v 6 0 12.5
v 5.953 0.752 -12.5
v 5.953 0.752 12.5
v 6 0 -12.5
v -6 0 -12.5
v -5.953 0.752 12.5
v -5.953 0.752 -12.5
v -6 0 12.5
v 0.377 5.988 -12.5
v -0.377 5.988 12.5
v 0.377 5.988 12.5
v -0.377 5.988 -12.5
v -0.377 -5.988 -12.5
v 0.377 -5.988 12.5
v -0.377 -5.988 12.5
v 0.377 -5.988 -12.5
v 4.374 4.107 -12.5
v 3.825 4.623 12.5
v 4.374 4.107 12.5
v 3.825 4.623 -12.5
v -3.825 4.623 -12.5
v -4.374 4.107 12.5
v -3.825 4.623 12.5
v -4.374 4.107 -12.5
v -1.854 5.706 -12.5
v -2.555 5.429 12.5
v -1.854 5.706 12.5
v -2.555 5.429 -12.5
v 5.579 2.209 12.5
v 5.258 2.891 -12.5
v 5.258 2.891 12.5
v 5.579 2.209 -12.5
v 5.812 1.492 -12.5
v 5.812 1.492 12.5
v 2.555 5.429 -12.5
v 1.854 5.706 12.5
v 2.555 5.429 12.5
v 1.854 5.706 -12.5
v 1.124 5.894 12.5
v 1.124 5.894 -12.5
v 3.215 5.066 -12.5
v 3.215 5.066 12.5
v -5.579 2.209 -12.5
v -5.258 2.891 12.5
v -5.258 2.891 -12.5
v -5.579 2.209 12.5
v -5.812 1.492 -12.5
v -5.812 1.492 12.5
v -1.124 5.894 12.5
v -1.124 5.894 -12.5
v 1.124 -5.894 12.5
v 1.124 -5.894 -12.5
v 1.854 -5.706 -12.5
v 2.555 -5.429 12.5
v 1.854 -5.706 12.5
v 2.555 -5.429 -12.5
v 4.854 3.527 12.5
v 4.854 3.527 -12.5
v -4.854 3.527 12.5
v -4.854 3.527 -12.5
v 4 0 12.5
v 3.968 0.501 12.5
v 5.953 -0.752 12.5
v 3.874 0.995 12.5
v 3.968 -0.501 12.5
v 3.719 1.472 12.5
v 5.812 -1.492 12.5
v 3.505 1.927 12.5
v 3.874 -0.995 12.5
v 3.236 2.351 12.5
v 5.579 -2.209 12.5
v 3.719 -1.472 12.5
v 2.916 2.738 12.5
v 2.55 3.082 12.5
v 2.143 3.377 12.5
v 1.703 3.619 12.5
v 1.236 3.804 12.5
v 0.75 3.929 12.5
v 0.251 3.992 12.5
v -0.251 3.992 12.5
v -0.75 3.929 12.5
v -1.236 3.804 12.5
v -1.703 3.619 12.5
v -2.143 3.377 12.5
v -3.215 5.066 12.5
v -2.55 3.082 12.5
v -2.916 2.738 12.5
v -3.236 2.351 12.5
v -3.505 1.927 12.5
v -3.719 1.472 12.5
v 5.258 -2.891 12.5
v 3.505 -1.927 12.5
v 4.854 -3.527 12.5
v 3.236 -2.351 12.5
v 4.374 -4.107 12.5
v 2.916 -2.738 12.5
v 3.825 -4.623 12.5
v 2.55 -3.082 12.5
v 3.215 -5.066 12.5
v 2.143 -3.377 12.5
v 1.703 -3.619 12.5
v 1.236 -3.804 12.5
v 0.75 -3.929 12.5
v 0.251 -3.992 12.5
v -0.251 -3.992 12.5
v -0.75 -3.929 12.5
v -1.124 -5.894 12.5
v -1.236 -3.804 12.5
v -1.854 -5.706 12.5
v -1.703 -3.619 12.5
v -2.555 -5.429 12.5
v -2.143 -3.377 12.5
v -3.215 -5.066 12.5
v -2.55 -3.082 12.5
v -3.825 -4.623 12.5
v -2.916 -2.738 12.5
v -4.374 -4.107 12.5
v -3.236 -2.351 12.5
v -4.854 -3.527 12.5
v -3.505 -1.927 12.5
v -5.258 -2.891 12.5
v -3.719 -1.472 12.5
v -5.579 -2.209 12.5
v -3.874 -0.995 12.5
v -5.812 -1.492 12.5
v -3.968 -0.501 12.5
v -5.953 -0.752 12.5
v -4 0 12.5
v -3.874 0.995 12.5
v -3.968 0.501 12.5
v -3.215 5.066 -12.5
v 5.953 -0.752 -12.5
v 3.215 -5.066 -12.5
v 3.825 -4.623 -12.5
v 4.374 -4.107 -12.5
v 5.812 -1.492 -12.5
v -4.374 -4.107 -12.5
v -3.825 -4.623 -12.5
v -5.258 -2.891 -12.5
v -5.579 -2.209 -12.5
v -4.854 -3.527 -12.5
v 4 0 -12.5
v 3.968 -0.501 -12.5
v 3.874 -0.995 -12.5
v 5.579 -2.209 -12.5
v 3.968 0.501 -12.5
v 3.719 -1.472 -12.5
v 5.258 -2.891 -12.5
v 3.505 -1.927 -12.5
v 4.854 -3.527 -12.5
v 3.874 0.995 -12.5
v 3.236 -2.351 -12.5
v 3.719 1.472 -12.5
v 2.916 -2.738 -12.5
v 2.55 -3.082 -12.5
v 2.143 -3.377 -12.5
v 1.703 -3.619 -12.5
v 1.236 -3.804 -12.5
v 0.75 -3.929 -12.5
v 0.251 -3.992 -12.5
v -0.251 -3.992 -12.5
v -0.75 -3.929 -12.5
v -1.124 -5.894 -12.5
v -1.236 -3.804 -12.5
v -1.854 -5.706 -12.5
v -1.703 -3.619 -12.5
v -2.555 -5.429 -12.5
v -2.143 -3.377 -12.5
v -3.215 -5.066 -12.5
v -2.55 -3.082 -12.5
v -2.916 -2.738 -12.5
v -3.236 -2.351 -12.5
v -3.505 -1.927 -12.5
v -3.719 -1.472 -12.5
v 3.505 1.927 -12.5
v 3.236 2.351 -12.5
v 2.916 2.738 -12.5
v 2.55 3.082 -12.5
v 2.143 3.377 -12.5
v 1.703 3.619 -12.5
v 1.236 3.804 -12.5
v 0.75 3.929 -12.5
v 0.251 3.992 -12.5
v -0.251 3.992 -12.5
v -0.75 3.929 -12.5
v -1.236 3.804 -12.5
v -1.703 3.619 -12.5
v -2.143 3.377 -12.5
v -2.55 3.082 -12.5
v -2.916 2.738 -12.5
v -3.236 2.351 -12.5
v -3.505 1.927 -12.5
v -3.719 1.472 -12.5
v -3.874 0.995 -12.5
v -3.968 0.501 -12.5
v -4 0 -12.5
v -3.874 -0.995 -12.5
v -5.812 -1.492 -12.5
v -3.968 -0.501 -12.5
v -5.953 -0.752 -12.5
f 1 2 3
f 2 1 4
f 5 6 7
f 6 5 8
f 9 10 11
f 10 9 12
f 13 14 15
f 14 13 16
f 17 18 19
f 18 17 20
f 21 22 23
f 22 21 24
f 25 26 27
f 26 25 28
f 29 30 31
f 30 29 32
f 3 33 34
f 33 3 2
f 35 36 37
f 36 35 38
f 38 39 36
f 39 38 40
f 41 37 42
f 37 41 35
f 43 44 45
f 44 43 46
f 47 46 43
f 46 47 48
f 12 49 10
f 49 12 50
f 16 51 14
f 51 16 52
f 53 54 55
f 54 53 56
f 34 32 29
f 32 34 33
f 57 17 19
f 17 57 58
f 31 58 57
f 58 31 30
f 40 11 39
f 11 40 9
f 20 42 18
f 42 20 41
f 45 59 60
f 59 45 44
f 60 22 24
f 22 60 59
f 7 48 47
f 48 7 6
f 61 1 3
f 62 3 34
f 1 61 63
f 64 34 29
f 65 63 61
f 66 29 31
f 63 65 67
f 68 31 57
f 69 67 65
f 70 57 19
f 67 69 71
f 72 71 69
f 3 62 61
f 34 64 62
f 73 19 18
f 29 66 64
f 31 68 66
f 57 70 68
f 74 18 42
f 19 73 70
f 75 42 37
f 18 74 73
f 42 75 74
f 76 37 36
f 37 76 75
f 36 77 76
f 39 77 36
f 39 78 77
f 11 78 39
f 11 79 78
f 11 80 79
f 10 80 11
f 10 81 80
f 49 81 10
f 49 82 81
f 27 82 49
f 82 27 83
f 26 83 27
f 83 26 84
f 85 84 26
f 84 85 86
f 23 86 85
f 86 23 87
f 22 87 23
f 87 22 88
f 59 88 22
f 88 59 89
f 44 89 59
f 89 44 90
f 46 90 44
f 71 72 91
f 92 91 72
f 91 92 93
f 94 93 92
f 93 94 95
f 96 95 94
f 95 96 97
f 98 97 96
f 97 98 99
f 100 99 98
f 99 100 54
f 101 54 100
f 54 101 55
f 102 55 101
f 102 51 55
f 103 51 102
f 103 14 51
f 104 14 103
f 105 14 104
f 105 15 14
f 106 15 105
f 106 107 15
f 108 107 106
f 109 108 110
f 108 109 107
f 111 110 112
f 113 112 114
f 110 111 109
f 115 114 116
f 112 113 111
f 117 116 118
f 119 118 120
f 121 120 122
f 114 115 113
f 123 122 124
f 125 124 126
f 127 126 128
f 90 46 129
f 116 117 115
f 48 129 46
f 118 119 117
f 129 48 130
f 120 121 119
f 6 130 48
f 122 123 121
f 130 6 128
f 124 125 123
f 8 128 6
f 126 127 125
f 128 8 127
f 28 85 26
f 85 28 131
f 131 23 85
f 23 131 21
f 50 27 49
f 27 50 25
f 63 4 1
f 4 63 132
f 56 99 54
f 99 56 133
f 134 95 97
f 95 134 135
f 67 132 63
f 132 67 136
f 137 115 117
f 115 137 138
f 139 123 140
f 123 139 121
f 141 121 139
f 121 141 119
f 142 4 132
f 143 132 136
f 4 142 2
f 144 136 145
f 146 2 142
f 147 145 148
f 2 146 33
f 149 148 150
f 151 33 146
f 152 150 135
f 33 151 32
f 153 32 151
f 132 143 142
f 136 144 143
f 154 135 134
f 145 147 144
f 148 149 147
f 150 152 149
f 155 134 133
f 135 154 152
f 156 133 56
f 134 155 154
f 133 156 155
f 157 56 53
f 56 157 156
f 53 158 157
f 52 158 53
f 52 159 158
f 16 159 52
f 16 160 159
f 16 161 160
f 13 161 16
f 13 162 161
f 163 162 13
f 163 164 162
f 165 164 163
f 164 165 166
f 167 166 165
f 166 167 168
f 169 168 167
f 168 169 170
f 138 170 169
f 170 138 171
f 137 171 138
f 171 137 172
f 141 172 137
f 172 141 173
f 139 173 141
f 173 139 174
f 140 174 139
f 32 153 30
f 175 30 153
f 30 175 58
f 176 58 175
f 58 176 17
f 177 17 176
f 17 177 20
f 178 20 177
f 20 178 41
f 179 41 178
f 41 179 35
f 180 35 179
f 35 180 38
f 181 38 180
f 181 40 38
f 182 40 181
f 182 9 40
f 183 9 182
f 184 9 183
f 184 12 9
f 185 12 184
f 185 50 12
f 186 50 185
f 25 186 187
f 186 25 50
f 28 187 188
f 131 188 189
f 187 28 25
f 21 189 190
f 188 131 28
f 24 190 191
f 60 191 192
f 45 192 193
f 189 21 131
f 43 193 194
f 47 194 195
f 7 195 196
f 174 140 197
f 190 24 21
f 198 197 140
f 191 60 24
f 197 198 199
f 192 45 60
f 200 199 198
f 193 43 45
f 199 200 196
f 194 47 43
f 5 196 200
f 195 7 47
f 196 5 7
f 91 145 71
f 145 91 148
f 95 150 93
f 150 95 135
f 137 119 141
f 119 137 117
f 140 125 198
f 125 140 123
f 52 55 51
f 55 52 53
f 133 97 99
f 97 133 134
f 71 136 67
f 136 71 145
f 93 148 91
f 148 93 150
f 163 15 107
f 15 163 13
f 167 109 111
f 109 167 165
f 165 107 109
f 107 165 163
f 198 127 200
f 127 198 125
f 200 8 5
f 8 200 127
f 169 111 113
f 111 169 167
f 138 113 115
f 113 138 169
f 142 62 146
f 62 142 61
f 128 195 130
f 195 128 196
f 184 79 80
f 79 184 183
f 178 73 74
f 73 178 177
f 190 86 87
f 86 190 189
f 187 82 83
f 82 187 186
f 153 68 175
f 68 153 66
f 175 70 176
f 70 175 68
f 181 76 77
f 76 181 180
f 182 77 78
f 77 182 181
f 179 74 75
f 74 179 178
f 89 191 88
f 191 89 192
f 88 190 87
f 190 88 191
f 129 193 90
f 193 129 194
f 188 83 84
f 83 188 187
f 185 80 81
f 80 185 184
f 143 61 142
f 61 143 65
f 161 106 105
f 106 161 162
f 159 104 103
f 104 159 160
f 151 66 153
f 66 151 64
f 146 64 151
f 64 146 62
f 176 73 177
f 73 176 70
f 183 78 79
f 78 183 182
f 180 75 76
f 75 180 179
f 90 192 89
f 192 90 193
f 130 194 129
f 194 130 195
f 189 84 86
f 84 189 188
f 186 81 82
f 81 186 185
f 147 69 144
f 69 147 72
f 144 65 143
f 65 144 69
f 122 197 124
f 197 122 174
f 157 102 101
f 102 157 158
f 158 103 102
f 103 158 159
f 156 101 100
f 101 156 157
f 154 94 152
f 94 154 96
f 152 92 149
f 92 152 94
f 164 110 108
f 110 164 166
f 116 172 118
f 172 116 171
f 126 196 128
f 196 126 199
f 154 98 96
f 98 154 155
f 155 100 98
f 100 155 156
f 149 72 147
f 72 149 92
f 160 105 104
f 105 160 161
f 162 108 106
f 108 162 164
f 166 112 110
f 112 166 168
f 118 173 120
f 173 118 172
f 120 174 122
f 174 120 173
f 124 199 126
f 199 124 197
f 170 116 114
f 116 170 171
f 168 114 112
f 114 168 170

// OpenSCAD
$fn = 50;


difference() {
	union() {
		translate(v = [0, 0, -12.5000000000]) {
			cylinder(h = 25, r = 6.0000000000);
		}
	}
	union() {
		translate(v = [0, 0, -100.0000000000]) {
			cylinder(h = 200, r = 4);
		}
	}
}
